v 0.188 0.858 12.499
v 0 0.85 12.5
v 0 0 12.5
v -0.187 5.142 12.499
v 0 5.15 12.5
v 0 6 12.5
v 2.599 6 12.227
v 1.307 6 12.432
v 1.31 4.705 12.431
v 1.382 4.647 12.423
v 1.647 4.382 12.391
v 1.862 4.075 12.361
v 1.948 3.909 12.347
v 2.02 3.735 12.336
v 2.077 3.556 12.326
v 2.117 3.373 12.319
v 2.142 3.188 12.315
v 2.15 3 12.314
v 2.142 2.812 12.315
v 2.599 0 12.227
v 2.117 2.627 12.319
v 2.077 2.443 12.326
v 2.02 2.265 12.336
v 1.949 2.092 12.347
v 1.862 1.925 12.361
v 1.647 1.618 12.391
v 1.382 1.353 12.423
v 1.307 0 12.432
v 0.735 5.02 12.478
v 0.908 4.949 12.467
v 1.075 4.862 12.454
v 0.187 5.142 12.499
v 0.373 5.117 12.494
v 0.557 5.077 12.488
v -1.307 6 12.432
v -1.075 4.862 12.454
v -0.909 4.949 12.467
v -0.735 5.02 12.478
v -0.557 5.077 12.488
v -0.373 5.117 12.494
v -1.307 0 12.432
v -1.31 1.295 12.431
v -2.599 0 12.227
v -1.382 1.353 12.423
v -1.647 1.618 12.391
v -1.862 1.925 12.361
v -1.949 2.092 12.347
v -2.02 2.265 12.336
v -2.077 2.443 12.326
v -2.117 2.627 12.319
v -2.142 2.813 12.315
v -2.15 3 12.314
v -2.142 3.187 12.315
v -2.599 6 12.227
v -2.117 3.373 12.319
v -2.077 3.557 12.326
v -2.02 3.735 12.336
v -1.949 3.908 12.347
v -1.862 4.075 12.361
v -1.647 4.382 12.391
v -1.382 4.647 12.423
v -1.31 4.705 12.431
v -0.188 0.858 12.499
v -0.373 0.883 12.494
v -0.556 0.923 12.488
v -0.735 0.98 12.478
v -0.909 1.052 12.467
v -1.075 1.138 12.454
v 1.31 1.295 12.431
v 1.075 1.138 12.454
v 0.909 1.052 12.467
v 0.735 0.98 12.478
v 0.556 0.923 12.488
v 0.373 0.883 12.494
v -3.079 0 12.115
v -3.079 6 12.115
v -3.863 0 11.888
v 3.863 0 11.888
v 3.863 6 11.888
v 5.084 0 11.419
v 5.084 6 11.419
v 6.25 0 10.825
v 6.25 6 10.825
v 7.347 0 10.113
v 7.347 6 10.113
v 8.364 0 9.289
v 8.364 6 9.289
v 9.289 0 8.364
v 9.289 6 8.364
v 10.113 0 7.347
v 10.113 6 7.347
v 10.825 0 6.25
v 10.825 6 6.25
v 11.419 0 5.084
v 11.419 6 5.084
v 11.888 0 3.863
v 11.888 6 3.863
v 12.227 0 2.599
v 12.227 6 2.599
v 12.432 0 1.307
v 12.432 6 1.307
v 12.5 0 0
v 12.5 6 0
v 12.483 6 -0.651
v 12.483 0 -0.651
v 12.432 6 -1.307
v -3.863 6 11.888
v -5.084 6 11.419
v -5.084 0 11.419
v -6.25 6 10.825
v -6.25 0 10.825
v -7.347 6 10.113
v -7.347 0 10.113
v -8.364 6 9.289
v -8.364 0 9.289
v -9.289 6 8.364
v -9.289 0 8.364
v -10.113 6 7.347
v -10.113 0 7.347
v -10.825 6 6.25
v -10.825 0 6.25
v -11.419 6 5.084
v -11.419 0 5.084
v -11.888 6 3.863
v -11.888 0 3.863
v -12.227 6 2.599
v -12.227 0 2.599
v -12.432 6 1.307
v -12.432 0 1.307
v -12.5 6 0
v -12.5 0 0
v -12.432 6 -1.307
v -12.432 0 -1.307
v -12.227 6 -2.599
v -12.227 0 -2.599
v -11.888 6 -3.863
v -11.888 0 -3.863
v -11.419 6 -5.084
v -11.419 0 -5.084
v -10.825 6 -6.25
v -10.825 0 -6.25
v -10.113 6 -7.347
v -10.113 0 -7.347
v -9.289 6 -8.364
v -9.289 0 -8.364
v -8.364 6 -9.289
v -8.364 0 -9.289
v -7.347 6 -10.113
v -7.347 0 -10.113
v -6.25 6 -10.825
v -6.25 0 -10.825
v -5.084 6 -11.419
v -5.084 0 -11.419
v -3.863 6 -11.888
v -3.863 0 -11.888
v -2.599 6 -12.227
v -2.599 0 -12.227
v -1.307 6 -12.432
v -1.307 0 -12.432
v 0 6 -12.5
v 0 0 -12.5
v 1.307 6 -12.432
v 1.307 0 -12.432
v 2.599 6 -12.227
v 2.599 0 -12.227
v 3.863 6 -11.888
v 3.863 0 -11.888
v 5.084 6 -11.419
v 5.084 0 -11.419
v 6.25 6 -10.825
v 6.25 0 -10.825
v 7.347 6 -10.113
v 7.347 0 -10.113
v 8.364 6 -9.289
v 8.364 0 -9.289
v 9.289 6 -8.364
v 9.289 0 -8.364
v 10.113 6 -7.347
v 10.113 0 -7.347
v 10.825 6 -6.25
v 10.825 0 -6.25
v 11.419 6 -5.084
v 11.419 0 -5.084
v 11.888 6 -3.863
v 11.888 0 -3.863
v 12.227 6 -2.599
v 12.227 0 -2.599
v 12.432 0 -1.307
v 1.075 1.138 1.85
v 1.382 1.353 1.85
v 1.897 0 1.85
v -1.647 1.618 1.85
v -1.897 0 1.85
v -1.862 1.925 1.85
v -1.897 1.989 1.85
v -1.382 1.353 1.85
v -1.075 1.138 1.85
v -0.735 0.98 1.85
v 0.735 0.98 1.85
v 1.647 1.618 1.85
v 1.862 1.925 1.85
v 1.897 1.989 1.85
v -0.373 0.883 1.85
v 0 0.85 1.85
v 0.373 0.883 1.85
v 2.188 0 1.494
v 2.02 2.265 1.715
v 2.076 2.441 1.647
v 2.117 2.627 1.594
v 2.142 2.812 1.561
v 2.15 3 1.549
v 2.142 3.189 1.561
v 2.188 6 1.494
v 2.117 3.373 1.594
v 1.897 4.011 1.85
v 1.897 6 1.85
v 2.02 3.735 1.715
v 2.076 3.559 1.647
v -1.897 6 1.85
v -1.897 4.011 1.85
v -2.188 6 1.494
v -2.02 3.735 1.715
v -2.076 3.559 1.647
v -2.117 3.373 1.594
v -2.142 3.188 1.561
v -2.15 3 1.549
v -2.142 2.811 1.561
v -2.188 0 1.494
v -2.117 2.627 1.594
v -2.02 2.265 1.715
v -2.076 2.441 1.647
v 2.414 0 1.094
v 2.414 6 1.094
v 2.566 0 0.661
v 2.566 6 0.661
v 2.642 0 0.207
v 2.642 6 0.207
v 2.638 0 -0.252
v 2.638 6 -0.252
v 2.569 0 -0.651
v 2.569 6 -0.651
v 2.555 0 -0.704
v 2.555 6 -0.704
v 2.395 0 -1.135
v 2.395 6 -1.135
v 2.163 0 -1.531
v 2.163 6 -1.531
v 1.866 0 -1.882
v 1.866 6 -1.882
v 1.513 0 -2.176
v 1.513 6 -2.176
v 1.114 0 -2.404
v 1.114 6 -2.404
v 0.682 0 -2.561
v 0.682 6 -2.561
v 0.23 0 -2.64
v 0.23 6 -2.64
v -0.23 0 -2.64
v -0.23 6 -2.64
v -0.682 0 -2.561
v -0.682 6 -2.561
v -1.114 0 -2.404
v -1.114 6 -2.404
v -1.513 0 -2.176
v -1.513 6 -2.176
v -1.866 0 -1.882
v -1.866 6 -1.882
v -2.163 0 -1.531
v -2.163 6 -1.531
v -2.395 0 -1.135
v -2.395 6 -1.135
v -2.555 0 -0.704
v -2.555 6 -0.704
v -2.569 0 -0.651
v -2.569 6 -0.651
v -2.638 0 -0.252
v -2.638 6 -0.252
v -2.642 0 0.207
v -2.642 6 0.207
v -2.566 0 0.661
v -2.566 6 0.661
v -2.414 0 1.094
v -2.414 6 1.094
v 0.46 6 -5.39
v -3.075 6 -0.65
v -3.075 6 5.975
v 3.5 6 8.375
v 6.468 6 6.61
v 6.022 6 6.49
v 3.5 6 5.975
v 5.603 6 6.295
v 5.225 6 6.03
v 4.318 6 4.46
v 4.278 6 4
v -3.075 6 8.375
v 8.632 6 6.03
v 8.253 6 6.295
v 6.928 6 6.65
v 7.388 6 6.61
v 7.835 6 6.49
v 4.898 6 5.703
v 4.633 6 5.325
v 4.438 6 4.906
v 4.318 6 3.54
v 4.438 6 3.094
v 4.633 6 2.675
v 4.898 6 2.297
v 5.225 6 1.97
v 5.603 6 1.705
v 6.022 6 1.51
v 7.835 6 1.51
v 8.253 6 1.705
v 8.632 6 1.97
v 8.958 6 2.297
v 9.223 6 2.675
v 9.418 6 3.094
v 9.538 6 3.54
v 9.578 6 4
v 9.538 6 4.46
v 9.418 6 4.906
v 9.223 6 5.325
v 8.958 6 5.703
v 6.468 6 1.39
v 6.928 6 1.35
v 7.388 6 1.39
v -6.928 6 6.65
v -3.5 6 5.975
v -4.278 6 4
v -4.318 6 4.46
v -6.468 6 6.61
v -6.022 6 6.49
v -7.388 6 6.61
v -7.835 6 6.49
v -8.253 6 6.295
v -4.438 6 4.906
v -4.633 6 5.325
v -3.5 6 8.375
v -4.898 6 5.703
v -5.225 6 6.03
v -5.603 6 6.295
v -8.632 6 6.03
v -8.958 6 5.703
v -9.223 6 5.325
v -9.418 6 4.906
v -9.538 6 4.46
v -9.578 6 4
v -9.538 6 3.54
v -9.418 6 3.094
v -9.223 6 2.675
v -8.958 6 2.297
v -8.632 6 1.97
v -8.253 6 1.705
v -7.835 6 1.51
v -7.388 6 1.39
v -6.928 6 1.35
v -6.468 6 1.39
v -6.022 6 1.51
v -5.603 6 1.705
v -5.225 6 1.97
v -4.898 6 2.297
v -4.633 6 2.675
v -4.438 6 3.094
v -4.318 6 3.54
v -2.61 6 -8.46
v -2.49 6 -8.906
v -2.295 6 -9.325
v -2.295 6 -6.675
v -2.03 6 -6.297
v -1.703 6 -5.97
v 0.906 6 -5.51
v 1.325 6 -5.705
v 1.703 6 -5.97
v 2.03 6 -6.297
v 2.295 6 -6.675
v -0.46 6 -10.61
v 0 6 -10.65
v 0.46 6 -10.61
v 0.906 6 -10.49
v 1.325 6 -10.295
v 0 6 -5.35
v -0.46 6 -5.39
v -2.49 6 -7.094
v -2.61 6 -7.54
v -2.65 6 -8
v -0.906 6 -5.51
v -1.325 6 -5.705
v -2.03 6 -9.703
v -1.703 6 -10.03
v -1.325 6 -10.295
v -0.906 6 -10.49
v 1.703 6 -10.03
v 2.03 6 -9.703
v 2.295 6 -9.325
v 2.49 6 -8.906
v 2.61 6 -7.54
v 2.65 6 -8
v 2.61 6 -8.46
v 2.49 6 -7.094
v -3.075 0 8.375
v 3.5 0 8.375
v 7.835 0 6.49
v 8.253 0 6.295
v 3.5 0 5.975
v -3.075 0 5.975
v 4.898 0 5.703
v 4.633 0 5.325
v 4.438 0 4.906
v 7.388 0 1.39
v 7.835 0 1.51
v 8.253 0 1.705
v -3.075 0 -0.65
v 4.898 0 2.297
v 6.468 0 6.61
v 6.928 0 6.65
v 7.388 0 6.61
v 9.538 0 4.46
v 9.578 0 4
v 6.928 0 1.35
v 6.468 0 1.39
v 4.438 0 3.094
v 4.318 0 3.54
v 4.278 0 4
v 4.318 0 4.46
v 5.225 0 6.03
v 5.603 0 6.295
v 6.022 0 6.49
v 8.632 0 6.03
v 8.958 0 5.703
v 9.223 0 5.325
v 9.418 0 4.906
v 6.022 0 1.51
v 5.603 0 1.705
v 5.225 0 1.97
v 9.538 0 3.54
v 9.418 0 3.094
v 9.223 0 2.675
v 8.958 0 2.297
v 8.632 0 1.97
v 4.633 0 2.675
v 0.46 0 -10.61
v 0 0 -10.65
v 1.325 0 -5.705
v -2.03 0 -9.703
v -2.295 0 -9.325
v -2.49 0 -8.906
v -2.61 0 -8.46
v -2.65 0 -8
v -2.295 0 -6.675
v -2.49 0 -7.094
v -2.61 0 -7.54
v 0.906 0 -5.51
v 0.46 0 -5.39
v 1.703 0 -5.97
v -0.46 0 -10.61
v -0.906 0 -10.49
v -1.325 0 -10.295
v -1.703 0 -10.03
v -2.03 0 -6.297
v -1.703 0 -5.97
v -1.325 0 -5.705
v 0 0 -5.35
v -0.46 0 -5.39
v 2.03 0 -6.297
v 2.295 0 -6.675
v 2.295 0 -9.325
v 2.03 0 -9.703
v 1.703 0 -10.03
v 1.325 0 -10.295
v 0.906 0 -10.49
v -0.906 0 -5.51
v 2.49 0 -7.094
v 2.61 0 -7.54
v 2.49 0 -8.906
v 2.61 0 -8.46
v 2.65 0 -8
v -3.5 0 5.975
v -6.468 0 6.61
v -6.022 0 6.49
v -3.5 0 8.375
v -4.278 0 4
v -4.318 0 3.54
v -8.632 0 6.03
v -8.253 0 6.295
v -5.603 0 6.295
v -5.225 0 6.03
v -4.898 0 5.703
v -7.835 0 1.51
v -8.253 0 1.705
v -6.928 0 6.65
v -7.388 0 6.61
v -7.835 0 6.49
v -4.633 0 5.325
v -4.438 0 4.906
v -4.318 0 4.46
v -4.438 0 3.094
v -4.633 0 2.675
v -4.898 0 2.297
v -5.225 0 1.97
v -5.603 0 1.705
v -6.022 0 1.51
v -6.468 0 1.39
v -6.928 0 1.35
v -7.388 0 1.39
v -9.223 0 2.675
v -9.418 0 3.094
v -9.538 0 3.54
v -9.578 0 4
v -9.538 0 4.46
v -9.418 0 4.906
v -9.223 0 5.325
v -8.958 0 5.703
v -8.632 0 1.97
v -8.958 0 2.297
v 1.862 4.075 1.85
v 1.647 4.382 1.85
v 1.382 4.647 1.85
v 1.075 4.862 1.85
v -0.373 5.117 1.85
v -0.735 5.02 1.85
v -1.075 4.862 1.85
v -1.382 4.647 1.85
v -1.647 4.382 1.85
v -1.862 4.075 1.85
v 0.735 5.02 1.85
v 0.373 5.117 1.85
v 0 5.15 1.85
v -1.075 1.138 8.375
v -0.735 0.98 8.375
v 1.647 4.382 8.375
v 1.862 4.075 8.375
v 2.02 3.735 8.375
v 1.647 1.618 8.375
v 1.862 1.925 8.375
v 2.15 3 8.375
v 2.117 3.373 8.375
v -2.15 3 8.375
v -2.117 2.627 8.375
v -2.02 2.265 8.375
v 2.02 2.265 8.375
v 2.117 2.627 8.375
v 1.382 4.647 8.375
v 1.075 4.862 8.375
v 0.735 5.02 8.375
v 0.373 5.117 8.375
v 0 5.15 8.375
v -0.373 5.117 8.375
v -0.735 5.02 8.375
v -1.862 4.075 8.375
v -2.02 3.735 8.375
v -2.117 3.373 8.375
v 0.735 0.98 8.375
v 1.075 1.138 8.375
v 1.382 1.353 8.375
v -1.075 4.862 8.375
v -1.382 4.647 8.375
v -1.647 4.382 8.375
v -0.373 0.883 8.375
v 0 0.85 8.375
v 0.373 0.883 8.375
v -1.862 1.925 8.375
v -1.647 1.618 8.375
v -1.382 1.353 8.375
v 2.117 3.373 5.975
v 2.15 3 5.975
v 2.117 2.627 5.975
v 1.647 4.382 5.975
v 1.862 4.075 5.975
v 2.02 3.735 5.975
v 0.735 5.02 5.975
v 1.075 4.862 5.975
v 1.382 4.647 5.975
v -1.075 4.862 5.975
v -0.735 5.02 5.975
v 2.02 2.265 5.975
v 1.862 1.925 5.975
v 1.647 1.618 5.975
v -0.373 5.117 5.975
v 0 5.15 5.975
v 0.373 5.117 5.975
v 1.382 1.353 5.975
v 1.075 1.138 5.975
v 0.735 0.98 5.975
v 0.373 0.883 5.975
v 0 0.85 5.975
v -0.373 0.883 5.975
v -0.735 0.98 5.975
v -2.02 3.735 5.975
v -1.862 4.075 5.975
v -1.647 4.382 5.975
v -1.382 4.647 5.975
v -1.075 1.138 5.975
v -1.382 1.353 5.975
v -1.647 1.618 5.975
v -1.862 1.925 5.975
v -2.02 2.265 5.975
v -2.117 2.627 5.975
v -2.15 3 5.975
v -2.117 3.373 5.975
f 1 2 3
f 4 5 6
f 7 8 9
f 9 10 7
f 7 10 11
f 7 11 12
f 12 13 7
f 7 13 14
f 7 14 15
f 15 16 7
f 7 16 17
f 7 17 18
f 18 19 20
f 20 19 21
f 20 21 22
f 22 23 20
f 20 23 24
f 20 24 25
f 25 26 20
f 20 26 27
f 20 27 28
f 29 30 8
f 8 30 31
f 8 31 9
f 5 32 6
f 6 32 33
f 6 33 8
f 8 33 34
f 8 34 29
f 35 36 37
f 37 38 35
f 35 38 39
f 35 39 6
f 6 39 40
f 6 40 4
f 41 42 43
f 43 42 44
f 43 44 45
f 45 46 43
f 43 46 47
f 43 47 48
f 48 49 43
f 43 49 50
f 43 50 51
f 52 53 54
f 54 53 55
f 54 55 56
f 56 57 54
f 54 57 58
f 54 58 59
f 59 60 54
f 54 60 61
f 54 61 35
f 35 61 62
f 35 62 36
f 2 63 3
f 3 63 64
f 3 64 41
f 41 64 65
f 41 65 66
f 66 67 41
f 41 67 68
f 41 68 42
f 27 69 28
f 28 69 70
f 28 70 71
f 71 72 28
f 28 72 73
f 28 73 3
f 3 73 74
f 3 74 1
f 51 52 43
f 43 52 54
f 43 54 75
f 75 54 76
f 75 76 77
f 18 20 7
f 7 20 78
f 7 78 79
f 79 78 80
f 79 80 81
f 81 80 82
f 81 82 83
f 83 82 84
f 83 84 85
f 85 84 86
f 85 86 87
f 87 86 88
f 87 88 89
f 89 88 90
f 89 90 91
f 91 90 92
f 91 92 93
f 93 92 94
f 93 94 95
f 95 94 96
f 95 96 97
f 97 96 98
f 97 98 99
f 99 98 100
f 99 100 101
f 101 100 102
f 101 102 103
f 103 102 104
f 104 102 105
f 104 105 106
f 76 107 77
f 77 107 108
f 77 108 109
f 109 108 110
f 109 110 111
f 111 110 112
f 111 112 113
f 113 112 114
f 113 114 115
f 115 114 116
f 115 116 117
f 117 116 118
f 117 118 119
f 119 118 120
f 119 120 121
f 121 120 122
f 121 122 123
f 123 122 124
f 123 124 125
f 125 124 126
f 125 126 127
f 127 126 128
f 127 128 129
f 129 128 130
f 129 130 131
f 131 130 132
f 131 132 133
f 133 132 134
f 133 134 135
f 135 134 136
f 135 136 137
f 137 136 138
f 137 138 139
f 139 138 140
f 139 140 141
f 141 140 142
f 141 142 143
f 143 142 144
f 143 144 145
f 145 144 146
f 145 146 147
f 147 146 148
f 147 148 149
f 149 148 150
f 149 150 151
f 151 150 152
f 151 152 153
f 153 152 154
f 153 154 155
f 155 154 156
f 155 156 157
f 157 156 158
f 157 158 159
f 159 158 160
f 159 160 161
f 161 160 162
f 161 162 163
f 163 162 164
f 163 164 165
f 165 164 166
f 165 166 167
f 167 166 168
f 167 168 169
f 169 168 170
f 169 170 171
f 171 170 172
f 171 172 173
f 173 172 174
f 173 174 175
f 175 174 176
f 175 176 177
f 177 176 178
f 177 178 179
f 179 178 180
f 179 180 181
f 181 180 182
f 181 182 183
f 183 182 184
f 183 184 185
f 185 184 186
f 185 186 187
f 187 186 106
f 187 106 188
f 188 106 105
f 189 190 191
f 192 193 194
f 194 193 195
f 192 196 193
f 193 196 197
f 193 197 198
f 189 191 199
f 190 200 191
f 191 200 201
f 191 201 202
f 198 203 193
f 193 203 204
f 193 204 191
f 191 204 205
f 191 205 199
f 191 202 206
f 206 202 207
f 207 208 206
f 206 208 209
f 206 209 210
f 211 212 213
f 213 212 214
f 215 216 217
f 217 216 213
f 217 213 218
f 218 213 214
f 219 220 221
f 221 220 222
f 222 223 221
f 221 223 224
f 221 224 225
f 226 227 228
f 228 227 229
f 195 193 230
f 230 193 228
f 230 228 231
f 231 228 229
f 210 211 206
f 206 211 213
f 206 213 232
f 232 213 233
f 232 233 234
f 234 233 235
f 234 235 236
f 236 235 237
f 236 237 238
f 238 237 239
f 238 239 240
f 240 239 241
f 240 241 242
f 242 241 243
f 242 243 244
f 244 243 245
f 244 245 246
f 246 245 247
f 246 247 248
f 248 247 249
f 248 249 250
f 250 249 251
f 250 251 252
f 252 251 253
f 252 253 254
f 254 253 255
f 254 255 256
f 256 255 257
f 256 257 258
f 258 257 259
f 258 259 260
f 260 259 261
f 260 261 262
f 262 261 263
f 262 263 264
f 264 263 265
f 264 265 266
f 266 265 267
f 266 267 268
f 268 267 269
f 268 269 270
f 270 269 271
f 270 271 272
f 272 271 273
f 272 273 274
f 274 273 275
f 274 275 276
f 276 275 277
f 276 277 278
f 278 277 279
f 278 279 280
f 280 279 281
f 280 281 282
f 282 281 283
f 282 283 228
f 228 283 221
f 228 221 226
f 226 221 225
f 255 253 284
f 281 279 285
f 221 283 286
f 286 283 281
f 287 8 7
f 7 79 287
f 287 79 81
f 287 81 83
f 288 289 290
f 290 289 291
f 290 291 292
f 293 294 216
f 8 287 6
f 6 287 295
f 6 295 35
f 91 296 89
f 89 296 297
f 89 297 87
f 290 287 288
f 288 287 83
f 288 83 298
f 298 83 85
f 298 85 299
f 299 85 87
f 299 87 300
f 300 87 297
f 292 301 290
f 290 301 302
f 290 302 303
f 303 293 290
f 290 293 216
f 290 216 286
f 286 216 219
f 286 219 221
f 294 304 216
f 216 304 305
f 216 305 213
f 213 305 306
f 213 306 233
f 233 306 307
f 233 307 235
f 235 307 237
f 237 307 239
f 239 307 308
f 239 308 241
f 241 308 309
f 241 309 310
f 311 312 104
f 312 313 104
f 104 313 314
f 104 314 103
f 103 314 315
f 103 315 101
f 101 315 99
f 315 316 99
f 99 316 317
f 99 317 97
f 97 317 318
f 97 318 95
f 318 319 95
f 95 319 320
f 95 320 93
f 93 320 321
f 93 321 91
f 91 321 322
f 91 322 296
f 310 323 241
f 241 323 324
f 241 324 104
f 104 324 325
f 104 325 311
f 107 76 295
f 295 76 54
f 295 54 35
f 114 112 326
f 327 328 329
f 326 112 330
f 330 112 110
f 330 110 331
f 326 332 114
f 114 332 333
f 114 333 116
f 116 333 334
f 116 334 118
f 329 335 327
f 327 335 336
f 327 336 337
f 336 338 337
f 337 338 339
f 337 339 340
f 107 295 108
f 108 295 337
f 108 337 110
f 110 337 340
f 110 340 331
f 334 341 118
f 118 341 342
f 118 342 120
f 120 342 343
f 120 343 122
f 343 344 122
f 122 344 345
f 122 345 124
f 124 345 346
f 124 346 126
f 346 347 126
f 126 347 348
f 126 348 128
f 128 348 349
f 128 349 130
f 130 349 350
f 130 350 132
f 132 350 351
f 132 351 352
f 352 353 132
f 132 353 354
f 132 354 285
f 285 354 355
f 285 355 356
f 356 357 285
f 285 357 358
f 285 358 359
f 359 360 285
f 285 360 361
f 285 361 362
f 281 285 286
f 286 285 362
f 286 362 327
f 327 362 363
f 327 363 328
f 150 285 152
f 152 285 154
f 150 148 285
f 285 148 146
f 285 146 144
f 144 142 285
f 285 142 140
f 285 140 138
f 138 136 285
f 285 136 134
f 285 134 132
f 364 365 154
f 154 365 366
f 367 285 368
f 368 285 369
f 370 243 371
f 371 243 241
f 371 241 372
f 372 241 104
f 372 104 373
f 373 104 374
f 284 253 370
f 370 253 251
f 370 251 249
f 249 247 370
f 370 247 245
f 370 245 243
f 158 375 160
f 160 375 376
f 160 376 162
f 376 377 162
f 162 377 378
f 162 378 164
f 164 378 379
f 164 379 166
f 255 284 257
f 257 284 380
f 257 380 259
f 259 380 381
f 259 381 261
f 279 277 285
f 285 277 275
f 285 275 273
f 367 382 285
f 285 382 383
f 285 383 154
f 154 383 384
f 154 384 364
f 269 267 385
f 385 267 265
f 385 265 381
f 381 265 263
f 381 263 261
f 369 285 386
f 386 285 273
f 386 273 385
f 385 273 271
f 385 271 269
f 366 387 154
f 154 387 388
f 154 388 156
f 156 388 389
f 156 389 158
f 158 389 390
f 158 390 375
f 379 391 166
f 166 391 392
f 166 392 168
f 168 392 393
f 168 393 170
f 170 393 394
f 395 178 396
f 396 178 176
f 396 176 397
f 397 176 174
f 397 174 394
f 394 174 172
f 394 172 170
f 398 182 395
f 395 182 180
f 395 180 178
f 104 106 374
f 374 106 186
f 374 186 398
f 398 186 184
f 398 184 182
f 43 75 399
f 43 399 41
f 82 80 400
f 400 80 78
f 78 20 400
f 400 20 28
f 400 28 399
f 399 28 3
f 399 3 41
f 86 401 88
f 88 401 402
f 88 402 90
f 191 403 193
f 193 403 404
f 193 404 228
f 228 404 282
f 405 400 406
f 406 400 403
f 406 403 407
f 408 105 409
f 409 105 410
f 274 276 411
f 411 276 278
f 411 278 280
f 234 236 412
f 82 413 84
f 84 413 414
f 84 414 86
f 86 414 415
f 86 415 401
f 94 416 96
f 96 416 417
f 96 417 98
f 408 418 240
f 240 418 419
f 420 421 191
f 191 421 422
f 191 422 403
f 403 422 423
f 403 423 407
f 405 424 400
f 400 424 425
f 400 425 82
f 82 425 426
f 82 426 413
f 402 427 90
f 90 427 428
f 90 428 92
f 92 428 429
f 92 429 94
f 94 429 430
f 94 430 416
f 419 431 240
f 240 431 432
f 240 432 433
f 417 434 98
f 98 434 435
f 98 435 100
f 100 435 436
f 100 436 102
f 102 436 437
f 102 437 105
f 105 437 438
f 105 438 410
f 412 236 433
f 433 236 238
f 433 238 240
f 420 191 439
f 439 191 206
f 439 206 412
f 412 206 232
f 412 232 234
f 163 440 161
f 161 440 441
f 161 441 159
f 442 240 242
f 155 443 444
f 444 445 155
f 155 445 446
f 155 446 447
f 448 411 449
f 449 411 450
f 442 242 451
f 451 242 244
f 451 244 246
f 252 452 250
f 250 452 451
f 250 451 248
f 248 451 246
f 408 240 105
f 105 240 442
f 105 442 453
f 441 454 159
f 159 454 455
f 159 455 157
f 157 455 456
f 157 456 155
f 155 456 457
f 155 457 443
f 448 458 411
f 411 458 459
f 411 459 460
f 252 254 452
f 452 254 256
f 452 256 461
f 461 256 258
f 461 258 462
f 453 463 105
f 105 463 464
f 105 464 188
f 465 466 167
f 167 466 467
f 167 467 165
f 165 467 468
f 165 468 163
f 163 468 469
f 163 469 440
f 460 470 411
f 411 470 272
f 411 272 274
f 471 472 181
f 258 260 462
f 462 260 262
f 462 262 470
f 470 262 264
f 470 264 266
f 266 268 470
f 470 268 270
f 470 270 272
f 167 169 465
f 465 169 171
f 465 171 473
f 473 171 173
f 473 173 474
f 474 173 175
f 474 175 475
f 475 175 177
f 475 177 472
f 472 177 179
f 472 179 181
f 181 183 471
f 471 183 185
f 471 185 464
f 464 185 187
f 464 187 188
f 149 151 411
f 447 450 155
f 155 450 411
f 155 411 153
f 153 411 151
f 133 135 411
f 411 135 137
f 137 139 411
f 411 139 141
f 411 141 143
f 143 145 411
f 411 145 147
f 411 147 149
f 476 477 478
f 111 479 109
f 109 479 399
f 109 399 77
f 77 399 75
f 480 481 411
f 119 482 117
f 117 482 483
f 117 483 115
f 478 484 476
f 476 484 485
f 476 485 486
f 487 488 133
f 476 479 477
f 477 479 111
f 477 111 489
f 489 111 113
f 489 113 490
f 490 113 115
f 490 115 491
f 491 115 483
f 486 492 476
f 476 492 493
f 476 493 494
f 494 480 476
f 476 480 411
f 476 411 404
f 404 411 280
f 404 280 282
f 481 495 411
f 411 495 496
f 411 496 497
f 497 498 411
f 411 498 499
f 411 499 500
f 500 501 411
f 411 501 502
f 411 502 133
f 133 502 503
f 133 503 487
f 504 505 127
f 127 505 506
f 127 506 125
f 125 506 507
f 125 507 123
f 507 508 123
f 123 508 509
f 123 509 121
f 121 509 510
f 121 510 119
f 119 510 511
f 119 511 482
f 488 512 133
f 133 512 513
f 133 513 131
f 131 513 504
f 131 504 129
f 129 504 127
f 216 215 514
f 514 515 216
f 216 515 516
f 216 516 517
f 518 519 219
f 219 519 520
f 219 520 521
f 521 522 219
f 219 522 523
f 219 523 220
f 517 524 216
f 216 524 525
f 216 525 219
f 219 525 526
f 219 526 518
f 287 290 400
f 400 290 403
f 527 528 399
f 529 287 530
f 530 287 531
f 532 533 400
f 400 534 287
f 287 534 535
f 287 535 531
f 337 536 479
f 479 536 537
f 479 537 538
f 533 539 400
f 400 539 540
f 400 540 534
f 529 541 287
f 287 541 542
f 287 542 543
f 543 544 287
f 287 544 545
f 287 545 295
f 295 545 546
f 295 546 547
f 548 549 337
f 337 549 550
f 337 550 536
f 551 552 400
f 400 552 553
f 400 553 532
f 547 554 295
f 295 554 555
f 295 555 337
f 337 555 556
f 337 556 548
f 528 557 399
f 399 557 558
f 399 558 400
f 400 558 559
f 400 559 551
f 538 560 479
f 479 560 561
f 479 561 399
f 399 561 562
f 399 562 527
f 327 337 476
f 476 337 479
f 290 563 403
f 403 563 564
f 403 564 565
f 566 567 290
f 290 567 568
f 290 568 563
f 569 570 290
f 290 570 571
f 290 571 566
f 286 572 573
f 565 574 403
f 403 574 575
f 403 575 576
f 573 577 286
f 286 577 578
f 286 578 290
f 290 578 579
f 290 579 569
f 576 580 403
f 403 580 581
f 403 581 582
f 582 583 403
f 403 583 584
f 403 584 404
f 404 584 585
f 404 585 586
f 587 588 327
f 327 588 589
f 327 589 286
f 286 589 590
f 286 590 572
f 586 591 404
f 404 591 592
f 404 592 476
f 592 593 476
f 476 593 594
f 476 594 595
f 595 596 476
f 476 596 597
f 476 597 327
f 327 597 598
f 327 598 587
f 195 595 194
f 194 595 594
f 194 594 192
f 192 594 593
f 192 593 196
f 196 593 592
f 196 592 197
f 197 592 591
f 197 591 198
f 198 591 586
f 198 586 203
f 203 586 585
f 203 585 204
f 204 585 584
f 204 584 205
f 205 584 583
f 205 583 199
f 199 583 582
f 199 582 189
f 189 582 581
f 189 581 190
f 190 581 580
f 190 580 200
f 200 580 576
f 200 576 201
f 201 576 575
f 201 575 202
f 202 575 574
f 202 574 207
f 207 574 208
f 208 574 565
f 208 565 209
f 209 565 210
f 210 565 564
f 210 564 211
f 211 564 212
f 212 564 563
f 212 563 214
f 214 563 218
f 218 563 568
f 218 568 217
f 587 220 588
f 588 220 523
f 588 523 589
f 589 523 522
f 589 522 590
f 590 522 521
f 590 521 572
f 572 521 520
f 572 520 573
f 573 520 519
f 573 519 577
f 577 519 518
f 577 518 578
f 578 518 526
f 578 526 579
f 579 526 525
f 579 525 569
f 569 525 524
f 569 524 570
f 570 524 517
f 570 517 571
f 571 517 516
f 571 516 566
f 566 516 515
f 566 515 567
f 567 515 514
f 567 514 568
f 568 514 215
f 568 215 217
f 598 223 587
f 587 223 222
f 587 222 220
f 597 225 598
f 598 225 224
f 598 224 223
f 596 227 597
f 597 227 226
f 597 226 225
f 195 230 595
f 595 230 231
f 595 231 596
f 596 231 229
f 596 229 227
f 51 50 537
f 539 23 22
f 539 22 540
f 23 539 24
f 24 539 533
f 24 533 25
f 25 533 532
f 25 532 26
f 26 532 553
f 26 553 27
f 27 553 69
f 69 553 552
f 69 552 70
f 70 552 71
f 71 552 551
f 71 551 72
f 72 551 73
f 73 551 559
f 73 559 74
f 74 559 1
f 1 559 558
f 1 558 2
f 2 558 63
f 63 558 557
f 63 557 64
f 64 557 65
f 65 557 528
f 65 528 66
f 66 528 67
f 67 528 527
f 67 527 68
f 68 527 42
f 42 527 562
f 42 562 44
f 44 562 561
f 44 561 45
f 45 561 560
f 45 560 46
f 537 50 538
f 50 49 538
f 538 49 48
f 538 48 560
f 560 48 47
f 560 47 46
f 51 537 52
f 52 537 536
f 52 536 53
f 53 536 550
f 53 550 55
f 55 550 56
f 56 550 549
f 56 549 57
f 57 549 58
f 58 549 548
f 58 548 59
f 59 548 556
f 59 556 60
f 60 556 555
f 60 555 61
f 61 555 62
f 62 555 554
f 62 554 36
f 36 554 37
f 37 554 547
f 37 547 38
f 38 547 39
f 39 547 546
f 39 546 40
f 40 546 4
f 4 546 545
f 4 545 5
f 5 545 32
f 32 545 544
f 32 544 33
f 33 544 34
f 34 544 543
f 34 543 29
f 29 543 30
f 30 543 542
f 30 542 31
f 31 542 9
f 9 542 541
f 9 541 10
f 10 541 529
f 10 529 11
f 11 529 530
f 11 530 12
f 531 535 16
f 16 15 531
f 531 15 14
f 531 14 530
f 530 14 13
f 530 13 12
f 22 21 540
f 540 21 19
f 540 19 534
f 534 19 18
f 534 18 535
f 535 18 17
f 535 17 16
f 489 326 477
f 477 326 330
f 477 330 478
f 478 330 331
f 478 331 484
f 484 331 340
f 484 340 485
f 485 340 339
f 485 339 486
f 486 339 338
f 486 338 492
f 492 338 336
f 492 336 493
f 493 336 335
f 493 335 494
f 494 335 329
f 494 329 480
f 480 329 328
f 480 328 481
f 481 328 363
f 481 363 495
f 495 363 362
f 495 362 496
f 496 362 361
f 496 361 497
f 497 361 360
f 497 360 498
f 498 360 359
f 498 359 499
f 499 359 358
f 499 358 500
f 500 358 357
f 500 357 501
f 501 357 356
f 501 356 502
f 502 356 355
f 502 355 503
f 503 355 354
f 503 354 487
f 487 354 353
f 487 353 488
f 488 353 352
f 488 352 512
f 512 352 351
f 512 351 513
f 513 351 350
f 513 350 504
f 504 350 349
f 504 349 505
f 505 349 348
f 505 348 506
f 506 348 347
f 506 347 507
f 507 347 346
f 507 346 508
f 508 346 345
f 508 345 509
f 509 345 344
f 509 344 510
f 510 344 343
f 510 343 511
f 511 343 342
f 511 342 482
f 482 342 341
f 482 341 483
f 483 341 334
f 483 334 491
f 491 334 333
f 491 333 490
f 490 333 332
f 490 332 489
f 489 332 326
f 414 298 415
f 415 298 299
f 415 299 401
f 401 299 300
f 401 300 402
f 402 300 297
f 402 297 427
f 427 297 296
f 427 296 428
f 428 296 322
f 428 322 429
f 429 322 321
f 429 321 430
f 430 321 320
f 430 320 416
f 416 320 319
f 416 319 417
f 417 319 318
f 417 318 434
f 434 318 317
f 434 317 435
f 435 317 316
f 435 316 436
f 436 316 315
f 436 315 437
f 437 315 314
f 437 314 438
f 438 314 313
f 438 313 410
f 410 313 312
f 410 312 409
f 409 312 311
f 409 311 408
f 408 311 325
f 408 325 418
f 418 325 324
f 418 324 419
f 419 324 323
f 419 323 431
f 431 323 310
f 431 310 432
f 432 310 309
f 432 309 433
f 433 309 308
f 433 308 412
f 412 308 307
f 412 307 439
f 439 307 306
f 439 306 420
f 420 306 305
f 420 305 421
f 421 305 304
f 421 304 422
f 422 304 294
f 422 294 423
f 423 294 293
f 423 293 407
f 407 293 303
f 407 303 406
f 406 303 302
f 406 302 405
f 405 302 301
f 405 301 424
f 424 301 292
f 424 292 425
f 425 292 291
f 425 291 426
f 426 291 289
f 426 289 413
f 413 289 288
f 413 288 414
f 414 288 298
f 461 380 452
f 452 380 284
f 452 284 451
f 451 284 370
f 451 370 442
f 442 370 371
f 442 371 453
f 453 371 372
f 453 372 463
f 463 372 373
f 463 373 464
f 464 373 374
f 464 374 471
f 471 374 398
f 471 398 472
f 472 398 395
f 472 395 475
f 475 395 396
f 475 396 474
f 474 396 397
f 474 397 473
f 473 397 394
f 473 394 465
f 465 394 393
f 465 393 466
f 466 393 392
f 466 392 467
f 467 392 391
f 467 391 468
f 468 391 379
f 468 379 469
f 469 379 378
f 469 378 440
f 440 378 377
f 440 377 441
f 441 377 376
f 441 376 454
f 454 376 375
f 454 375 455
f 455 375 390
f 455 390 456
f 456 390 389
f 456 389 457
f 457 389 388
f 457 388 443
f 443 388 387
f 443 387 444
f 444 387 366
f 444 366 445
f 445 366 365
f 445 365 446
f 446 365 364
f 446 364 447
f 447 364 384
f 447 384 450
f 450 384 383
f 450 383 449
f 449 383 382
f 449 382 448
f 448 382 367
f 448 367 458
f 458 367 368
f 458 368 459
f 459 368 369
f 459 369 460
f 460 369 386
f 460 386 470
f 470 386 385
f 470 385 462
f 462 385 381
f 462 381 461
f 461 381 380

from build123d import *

# Parameters (mm, degrees)
SKETCH1_R               = 12.5
BOSS_EXTRUDE1_DEPTH     = 6
CUT_EXTRUDE1_REACH      = 20.668
CUT_EXTRUDE2_REACH      = 20.668
SKETCH3_W               = 7
SKETCH3_H               = 2.4
CUT_EXTRUDE3_DEPTH      = 1
CUT_EXTRUDE3_DEPTH_BACK = 20.954260197
SKETCH4_R               = 2.15
SKETCH5_R               = 2.65
CUT_EXTRUDE4_DEPTH      = 19.668154869


with BuildPart() as part:
    # Sketch1 → Boss-Extrude1 (new body)
    with BuildSketch(Plane(origin=(0, 0, 0), x_dir=(1, 0, 0), z_dir=(0, 1, 0))):
        with Locations(Location((0, 0, 0), (0, 0, 270))):
            Circle(SKETCH1_R)
    extrude(amount=BOSS_EXTRUDE1_DEPTH)

    # Sketch2 → Cut-Extrude1 (cut, up to next)
    with BuildSketch(Plane(origin=(0, 6, 0), x_dir=(1, 0, 0), z_dir=(0, 1, 0)), mode=Mode.PRIVATE) as cut_extrude1_sk1:
        with BuildLine():
            ThreePointArc((0, 2.65), (-2.441823089, 1.029563014), (-1.897366596, -1.85))
            Line((-1.897366596, -1.85), (0, -1.85))
            Line((0, -1.85), (0, 2.65))
        make_face()
    cut_extrude1_tool1 = extrude(cut_extrude1_sk1.sketch, amount=-CUT_EXTRUDE1_REACH, mode=Mode.PRIVATE) & part.part
    # Sketch2 → Cut-Extrude1 (cut, up to next)
    with BuildSketch(Plane(origin=(0, 6, 0), x_dir=(1, 0, 0), z_dir=(0, 1, 0)), mode=Mode.PRIVATE) as cut_extrude1_sk2:
        with BuildLine():
            Line((0, 2.65), (0, -1.85))
            Line((0, -1.85), (1.897366596, -1.85))
            ThreePointArc((1.897366596, -1.85), (2.454640654, -0.998618676), (2.65, 0))
            ThreePointArc((2.65, 0), (1.87383297, 1.87383297), (0, 2.65))
        make_face()
    cut_extrude1_tool2 = extrude(cut_extrude1_sk2.sketch, amount=-CUT_EXTRUDE1_REACH, mode=Mode.PRIVATE) & part.part
    # Sketch2 → Cut-Extrude1 (cut, up to next)
    with BuildSketch(Plane(origin=(0, 6, 0), x_dir=(1, 0, 0), z_dir=(0, 1, 0)), mode=Mode.PRIVATE) as cut_extrude1_sk3:
        with BuildLine():
            ThreePointArc((0, 2.65), (-2.441823089, 1.029563014), (-1.897366596, -1.85))
            Line((-1.897366596, -1.85), (0, -1.85))
            Line((0, -1.85), (0, 2.65))
        make_face()
    cut_extrude1_tool3 = extrude(cut_extrude1_sk3.sketch, amount=-CUT_EXTRUDE1_REACH, mode=Mode.PRIVATE) & part.part
    # Sketch2 → Cut-Extrude1 (cut, up to next)
    with BuildSketch(Plane(origin=(0, 6, 0), x_dir=(1, 0, 0), z_dir=(0, 1, 0)), mode=Mode.PRIVATE) as cut_extrude1_sk4:
        with BuildLine():
            Line((0, 2.65), (0, -1.85))
            Line((0, -1.85), (1.897366596, -1.85))
            ThreePointArc((1.897366596, -1.85), (2.454640654, -0.998618676), (2.65, 0))
            ThreePointArc((2.65, 0), (1.87383297, 1.87383297), (0, 2.65))
        make_face()
    cut_extrude1_tool4 = extrude(cut_extrude1_sk4.sketch, amount=-CUT_EXTRUDE1_REACH, mode=Mode.PRIVATE) & part.part
    add(cut_extrude1_tool1.solids().sort_by_distance((-1.166256, 6, -0.228052))[0], mode=Mode.SUBTRACT)
    add(cut_extrude1_tool2.solids().sort_by_distance((1.166256, 6, -0.228052))[0], mode=Mode.SUBTRACT)
    add(cut_extrude1_tool3.solids().sort_by_distance((-1.166256, 6, -0.228052))[0], mode=Mode.SUBTRACT)
    add(cut_extrude1_tool4.solids().sort_by_distance((1.166256, 6, -0.228052))[0], mode=Mode.SUBTRACT)

    # Sketch3 → Cut-Extrude2 (cut, up to next)
    with BuildSketch(Plane(origin=(0, 6, 0), x_dir=(1, 0, 0), z_dir=(0, 1, 0)), mode=Mode.PRIVATE) as cut_extrude2_sk1:
        with Locations((0, -7.175)):
            Rectangle(SKETCH3_W, SKETCH3_H)
    cut_extrude2_tool1 = extrude(cut_extrude2_sk1.sketch, amount=-CUT_EXTRUDE2_REACH, mode=Mode.PRIVATE) & part.part
    add(cut_extrude2_tool1.solids().sort_by_distance((0, 6, 7.175))[0], mode=Mode.SUBTRACT)

    # Sketch4 → Cut-Extrude3 (cut, two sides: drawn at the far end of the back side and taken through both)
    with BuildSketch(Plane(origin=(0, 0, 1.85), x_dir=(-1, 0, 0), z_dir=(0, 0, -1)).offset(-CUT_EXTRUDE3_DEPTH_BACK)):
        with Locations(Location((0, 3, 0), (0, 0, 208.05505294))):
            Circle(SKETCH4_R)
    extrude(amount=CUT_EXTRUDE3_DEPTH + CUT_EXTRUDE3_DEPTH_BACK, mode=Mode.SUBTRACT)

    # Sketch5 → Cut-Extrude4 (cut, through all)
    with BuildSketch(Plane(origin=(0, 6, 0), x_dir=(1, 0, 0), z_dir=(0, 1, 0))):
        with Locations(Location((0, 8, 0), (0, 0, 270))):
            Circle(SKETCH5_R)
        with Locations(Location((6.92820323, -4, 0), (0, 0, 270))):
            Circle(SKETCH5_R)
        with Locations(Location((-6.92820323, -4, 0), (0, 0, 270))):
            Circle(SKETCH5_R)
    extrude(amount=-CUT_EXTRUDE4_DEPTH, mode=Mode.SUBTRACT)


solid = part.part
